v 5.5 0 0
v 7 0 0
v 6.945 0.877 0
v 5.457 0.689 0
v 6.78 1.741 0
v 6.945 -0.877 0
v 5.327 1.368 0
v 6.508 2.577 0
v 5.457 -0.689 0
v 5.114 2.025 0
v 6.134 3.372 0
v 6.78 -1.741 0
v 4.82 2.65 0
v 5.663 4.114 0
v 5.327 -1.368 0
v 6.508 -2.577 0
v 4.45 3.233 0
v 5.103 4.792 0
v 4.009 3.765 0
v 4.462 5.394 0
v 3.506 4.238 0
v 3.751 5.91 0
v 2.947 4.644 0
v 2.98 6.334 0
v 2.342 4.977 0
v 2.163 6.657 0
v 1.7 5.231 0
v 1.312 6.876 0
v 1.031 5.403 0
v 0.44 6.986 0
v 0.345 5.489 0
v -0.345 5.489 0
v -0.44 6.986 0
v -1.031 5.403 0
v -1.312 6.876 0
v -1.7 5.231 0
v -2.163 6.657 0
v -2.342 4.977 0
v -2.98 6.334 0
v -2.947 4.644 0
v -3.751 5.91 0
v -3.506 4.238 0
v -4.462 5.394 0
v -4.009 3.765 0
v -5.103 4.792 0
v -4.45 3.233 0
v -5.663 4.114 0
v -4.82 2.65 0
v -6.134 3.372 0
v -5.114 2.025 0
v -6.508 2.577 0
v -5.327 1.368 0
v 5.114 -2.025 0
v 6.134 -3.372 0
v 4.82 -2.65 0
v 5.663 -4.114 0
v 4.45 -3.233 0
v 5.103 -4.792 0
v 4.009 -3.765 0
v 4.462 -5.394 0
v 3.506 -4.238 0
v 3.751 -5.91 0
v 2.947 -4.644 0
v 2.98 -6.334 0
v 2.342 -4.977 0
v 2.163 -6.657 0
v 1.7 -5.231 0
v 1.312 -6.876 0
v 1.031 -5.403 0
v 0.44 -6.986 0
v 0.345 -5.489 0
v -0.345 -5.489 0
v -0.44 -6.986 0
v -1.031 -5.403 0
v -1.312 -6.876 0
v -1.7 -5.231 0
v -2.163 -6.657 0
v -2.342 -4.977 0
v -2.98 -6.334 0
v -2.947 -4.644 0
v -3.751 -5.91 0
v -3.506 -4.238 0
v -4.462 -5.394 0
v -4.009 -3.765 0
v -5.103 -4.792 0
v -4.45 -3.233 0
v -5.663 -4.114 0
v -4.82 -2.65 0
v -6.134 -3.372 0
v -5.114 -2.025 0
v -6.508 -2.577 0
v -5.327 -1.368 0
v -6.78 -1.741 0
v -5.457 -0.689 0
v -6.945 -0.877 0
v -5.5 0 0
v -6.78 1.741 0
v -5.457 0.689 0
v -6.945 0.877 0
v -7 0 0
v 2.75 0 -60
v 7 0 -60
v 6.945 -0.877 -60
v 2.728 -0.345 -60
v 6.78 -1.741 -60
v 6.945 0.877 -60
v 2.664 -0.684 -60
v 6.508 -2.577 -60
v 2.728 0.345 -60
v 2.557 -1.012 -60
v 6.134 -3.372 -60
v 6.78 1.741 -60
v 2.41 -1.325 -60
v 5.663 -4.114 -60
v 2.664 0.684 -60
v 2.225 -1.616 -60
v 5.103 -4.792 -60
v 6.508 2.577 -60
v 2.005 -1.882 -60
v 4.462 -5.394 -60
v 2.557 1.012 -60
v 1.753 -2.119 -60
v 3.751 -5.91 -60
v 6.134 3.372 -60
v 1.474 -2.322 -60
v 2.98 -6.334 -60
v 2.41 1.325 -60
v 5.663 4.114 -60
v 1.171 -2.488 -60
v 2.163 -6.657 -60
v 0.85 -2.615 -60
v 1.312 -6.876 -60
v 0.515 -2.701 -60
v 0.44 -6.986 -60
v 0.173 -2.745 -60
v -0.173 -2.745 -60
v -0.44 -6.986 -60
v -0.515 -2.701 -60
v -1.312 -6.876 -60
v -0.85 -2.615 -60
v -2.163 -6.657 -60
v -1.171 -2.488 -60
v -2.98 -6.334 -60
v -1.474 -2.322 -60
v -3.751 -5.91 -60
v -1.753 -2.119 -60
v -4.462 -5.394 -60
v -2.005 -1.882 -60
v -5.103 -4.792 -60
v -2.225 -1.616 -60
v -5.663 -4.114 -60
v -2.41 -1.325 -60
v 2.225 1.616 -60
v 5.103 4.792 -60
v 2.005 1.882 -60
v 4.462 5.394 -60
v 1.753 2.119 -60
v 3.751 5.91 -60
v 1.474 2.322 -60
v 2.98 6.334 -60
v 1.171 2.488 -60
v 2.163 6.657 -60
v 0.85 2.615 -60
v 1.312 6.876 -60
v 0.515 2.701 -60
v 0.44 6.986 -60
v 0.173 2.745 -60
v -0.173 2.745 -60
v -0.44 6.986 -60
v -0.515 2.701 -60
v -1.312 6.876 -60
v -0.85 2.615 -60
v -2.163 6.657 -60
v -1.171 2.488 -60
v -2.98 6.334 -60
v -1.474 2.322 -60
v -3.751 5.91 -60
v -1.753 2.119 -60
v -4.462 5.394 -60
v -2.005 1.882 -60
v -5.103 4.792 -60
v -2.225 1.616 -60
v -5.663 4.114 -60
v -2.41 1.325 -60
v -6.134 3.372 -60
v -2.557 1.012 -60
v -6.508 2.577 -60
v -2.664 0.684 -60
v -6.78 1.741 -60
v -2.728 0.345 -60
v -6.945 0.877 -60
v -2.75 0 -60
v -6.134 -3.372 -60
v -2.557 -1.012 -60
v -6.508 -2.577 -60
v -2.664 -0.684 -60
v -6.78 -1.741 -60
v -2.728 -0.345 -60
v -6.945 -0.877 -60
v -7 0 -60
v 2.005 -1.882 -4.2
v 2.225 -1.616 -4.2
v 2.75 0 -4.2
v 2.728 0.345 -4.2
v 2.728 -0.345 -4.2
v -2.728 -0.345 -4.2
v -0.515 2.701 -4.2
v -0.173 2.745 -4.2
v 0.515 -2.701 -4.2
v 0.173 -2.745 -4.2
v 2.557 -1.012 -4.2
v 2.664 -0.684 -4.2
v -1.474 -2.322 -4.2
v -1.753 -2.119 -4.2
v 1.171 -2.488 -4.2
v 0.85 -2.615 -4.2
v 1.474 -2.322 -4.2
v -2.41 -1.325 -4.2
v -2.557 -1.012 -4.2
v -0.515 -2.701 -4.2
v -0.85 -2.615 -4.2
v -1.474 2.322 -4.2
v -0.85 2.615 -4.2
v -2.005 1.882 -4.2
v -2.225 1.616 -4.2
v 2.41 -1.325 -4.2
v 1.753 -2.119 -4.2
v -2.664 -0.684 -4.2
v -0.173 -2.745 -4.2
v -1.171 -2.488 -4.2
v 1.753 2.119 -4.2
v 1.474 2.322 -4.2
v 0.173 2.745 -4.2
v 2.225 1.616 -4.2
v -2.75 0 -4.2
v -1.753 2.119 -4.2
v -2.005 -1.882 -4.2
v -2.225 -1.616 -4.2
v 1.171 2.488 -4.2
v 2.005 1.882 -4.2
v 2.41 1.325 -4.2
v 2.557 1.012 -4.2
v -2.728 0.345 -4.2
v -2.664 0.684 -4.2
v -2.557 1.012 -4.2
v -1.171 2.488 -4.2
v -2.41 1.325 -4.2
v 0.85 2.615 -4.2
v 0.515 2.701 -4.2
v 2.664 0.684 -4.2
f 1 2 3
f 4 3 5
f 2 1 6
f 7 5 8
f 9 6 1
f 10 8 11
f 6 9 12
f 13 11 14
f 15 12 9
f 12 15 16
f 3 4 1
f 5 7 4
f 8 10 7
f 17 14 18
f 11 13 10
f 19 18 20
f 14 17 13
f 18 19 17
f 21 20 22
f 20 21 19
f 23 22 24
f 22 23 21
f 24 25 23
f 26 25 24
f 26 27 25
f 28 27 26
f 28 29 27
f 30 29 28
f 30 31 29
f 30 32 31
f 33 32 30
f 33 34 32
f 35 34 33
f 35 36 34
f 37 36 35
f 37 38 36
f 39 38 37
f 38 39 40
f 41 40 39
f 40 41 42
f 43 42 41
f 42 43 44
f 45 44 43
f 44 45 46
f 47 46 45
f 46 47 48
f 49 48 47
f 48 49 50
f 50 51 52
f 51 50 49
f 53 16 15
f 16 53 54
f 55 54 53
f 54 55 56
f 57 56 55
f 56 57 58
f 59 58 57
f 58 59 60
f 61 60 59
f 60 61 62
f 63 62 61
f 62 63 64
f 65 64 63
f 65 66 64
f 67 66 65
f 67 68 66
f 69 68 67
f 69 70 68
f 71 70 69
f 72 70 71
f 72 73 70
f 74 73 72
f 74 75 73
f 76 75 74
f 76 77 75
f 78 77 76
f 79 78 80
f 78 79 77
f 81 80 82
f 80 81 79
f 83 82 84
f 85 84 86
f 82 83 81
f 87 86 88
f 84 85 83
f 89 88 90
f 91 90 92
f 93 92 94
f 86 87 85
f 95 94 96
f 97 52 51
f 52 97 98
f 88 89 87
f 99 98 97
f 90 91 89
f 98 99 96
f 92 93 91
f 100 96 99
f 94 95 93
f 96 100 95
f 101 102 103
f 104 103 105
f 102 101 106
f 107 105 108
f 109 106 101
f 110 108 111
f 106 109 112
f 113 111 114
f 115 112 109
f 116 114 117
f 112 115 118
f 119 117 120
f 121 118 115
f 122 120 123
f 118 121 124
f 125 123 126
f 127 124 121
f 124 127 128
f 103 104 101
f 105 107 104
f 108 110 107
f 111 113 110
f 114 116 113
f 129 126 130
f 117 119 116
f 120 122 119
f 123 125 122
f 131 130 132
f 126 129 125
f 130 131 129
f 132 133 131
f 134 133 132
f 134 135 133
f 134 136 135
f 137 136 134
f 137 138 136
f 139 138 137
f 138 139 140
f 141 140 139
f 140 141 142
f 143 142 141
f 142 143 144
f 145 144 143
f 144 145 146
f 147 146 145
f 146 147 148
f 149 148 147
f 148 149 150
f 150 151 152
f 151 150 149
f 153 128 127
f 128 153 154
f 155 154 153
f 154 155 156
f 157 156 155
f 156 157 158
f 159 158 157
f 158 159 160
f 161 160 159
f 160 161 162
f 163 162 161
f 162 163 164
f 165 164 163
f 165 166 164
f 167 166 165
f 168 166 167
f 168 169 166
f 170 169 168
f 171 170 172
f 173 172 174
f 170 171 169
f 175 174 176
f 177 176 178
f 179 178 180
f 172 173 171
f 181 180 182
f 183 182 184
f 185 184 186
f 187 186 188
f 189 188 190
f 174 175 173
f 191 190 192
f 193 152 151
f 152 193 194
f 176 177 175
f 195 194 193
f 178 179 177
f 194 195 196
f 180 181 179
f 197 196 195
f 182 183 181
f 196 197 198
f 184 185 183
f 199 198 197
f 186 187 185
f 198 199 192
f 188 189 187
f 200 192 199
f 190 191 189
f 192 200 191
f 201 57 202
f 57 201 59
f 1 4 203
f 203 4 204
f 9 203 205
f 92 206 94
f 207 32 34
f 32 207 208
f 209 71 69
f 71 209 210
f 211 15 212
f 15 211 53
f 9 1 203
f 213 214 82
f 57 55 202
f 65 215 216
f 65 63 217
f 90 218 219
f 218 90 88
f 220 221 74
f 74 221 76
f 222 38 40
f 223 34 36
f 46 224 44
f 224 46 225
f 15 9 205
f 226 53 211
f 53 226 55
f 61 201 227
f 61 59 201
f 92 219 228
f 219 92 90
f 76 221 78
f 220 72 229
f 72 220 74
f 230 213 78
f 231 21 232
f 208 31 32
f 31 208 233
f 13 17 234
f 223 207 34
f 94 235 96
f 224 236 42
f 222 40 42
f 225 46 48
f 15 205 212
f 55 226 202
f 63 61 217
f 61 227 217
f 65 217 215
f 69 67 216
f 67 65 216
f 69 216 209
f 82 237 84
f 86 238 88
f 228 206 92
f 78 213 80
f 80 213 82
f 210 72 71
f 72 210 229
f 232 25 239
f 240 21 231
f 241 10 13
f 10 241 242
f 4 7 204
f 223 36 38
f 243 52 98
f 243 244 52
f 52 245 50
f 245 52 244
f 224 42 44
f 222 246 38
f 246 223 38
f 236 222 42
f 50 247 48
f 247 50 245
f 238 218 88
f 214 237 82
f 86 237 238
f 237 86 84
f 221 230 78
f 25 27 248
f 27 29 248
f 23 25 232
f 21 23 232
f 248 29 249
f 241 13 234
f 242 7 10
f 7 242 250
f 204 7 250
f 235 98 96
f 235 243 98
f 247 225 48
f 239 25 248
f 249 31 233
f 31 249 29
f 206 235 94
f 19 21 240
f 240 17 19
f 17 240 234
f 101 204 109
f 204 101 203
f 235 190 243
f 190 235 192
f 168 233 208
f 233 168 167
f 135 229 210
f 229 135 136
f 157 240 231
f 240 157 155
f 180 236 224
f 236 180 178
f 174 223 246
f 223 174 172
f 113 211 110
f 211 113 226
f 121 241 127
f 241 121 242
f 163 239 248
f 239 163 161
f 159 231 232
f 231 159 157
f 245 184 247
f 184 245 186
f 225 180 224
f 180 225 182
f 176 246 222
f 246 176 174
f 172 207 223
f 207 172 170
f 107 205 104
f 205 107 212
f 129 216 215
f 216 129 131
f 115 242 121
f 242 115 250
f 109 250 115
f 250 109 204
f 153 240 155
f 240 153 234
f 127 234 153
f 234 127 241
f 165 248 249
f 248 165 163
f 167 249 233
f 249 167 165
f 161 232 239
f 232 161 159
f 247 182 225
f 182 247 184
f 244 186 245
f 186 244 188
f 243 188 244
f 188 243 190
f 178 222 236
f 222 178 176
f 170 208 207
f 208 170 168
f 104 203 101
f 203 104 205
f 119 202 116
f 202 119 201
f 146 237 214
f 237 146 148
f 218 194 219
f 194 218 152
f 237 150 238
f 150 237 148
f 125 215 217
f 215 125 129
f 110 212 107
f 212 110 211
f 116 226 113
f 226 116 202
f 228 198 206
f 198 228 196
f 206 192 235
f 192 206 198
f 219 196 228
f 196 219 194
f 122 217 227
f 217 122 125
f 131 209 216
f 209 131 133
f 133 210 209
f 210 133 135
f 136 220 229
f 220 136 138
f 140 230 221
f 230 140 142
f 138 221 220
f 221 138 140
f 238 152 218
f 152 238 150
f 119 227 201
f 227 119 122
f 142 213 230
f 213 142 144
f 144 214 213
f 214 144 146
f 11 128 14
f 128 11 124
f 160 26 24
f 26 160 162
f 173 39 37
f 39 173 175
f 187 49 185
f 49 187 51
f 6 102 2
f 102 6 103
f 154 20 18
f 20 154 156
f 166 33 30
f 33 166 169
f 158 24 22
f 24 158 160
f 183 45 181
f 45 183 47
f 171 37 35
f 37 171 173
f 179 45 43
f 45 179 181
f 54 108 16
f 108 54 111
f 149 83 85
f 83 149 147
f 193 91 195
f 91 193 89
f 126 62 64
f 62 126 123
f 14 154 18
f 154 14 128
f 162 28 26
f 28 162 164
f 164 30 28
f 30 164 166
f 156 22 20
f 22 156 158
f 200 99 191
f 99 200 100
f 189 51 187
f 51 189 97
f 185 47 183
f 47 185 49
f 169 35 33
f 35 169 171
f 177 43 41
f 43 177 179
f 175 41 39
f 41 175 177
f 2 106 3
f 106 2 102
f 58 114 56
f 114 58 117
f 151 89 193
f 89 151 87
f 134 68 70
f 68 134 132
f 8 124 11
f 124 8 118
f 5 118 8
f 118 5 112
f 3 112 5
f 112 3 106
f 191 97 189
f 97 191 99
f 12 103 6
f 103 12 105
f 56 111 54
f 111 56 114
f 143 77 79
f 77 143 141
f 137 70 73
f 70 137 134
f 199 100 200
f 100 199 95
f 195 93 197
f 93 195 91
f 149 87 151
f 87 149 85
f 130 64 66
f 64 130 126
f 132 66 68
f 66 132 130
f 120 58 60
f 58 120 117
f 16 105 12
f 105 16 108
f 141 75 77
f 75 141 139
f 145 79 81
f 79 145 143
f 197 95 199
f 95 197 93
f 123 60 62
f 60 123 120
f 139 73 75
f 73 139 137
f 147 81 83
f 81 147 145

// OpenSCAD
$fn = 50;


difference() {
	union() {
		translate(v = [0, 0, -60.0000000000]) {
			cylinder(h = 60, r = 7.0000000000);
		}
		cylinder(h = 0, r = 10.0000000000);
	}
	union() {
		translate(v = [0, 0, 0]) {
			rotate(a = [0, 0, 0]) {
				difference() {
					union() {
						#translate(v = [0, 0, -60.0000000000]) {
							cylinder(h = 60, r = 2.2500000000);
						}
						#translate(v = [0, 0, -4.2000000000]) {
							cylinder(h = 4.2000000000, r1 = 2.7500000000, r2 = 5.5000000000);
						}
						#translate(v = [0, 0, -60.0000000000]) {
							cylinder(h = 60, r = 2.7500000000);
						}
						#translate(v = [0, 0, -60.0000000000]) {
							cylinder(h = 60, r = 2.2500000000);
						}
					}
					union();
				}
			}
		}
	}
}
